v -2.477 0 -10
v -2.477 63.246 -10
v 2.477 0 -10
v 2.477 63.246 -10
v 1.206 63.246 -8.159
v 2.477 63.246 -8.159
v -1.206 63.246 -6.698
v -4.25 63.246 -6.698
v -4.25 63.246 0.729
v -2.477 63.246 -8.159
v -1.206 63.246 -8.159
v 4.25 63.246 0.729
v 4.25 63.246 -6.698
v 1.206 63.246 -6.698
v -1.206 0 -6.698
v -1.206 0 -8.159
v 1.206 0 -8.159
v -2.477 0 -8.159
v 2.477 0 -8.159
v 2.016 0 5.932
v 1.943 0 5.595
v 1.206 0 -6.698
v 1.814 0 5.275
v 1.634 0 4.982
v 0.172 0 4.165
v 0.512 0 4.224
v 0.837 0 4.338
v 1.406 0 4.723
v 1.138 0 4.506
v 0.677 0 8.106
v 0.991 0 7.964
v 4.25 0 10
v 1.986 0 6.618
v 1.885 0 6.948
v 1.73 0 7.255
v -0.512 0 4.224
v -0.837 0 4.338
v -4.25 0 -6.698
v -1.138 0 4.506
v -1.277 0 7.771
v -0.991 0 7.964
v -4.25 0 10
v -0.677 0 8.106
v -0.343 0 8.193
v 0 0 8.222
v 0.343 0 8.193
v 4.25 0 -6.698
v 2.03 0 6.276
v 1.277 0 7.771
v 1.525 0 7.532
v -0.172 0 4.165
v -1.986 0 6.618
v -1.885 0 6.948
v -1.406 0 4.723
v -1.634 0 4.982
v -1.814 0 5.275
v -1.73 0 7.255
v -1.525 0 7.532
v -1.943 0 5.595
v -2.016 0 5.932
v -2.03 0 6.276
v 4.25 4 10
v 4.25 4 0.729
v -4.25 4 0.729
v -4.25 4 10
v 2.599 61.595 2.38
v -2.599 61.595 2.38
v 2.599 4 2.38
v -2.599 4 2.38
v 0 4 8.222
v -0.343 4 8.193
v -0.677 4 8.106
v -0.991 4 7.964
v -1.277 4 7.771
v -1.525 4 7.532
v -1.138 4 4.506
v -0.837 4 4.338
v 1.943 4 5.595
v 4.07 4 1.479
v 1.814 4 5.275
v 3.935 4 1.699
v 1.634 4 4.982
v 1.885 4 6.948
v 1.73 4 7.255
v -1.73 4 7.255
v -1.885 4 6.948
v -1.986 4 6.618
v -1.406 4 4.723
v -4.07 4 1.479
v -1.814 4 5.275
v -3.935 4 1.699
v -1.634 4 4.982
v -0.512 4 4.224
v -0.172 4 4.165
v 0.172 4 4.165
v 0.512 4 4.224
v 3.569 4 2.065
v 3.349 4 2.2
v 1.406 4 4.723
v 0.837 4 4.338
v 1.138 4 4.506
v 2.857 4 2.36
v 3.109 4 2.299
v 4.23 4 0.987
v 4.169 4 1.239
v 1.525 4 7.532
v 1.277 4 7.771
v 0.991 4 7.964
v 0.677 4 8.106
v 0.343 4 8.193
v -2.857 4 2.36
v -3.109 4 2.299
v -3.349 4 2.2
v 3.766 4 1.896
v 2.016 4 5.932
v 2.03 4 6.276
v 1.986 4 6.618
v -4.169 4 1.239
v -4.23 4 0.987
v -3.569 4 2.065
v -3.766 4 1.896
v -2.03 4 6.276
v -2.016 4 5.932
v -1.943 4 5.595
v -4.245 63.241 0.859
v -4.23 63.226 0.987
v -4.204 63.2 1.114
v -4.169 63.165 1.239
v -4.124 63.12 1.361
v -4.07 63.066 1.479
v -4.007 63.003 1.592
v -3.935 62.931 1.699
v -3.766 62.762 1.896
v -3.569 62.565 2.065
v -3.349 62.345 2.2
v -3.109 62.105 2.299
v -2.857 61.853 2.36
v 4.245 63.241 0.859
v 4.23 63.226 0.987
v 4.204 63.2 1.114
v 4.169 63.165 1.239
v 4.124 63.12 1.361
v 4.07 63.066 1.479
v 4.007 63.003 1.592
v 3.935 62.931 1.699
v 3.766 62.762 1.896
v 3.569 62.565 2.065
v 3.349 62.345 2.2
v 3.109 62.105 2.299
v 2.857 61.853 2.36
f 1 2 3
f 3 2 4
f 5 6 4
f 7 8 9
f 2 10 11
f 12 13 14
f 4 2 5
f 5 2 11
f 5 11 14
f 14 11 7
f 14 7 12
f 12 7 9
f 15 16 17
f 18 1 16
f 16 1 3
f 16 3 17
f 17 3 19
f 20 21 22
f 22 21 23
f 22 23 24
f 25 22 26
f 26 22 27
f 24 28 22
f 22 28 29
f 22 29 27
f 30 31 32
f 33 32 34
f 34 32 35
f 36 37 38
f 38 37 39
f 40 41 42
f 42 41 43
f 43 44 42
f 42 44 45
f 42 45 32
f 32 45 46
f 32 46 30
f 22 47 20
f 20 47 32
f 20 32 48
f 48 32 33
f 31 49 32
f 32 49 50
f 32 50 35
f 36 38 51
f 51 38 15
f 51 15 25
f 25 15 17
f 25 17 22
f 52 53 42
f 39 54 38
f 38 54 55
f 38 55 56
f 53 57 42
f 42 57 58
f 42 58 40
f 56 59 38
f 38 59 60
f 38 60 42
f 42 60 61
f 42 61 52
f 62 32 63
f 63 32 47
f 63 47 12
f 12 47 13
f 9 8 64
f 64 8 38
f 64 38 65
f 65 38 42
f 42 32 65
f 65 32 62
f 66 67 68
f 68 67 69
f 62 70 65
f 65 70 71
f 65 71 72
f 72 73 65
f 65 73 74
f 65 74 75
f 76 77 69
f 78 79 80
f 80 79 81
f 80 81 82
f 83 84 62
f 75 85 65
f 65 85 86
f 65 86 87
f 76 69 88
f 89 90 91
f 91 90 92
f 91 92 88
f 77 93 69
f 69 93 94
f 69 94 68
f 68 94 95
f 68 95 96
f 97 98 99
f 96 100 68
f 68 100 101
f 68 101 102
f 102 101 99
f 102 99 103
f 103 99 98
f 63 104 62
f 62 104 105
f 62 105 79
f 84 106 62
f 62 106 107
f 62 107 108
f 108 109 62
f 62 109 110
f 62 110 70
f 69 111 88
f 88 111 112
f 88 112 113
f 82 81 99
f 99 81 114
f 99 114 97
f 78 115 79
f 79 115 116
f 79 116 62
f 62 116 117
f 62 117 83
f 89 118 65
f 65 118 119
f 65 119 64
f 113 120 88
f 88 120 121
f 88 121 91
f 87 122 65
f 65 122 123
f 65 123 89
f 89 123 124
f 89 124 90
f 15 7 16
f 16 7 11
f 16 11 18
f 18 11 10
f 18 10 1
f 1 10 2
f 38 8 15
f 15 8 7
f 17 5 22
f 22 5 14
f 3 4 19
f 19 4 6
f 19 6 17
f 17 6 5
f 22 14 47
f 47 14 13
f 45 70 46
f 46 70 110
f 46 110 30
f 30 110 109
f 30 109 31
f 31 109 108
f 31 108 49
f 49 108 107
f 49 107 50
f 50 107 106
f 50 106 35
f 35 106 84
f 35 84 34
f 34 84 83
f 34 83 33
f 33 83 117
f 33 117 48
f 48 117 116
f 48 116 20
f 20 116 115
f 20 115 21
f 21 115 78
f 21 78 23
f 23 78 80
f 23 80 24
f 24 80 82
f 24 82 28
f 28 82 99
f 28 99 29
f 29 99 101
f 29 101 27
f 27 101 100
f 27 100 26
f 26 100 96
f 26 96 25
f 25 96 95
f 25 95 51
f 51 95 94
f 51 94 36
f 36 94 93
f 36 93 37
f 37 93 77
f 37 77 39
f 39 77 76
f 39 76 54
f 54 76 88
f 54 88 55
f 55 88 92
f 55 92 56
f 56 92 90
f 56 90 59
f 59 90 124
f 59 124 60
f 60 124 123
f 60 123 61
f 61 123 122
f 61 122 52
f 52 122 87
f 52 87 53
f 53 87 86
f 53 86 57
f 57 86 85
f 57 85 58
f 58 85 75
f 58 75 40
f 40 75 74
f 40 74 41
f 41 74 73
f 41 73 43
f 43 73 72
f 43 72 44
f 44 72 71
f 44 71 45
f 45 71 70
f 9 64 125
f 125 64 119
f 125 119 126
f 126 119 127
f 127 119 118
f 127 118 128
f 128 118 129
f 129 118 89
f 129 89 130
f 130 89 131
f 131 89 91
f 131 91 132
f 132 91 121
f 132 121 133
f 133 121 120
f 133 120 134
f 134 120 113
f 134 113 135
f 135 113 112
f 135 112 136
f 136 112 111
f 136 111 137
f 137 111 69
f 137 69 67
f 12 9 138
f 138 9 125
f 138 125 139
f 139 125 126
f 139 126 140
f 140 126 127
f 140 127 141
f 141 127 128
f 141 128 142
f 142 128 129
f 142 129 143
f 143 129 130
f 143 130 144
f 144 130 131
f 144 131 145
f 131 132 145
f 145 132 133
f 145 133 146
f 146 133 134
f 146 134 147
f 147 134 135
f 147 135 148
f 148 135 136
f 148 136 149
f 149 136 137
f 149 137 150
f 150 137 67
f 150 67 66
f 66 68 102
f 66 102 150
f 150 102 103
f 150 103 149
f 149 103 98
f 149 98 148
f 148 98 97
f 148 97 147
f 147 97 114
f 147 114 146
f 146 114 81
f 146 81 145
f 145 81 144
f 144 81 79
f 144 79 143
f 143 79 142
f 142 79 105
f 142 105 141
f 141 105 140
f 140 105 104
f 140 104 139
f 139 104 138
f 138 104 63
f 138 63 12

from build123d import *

# Parameters (mm, degrees)
SKETCH1_W               = 8.5
SKETCH1_H               = 20
BOSS_EXTRUDE1_DEPTH     = 63.246
SKETCH2_W               = 8.5
SKETCH2_H               = 7.62
CUT_EXTRUDE1_DEPTH      = 59.246
CUT_EXTRUDE2_DEPTH      = 5.334
CUT_EXTRUDE2_DEPTH_BACK = 79.922
SKETCH5_R               = 2.032
CUT_EXTRUDE3_DEPTH      = 79.922
FILLET1_R               = 1.651


with BuildPart() as part:
    # Sketch1 → Boss-Extrude1 (new body)
    with BuildSketch(Plane(origin=(0, 0, 0), x_dir=(1, 0, 0), z_dir=(0, 1, 0))):
        Rectangle(SKETCH1_W, SKETCH1_H)
    extrude(amount=BOSS_EXTRUDE1_DEPTH)

    # Sketch2 → Cut-Extrude1 (cut)
    with BuildSketch(Plane(origin=(0, 63.246, 0), x_dir=(1, 0, 0), z_dir=(0, 1, 0))):
        with Locations((0, -6.19)):
            Rectangle(SKETCH2_W, SKETCH2_H)
    extrude(amount=-CUT_EXTRUDE1_DEPTH, mode=Mode.SUBTRACT)

    # Sketch4 → Cut-Extrude2 (cut, two sides)
    with BuildSketch(Plane(origin=(0, 63.246, 0), x_dir=(1, 0, 0), z_dir=(0, 1, 0))) as cut_extrude2_sk:
        Polygon((-1.2065, 6.698), (-4.25, 6.698), (-4.25, 10), (-2.4765, 10), (-2.4765, 8.1585), (-1.2065, 8.1585), align=None)
        Polygon((1.2065, 6.698), (4.25, 6.698), (4.25, 10), (2.4765, 10), (2.4765, 8.1585), (1.2065, 8.1585), align=None)
    extrude(amount=CUT_EXTRUDE2_DEPTH, mode=Mode.SUBTRACT)
    extrude(cut_extrude2_sk.sketch, amount=-CUT_EXTRUDE2_DEPTH_BACK, mode=Mode.SUBTRACT)

    # Sketch5 → Cut-Extrude3 (cut)
    with BuildSketch(Plane(origin=(0, 4, 0), x_dir=(1, 0, 0), z_dir=(0, 1, 0))):
        with Locations((0, -6.19)):
            Circle(SKETCH5_R)
    extrude(amount=-CUT_EXTRUDE3_DEPTH, mode=Mode.SUBTRACT)

    # Fillet1
    fillet1_edges = [part.edges().sort_by_distance(p)[0] for p in [
        (4.25, 33.623, 2.38),
        (-4.25, 33.623, 2.38),
        (0, 63.246, 2.38),
    ]]
    fillet(fillet1_edges, radius=FILLET1_R)


solid = part.part
